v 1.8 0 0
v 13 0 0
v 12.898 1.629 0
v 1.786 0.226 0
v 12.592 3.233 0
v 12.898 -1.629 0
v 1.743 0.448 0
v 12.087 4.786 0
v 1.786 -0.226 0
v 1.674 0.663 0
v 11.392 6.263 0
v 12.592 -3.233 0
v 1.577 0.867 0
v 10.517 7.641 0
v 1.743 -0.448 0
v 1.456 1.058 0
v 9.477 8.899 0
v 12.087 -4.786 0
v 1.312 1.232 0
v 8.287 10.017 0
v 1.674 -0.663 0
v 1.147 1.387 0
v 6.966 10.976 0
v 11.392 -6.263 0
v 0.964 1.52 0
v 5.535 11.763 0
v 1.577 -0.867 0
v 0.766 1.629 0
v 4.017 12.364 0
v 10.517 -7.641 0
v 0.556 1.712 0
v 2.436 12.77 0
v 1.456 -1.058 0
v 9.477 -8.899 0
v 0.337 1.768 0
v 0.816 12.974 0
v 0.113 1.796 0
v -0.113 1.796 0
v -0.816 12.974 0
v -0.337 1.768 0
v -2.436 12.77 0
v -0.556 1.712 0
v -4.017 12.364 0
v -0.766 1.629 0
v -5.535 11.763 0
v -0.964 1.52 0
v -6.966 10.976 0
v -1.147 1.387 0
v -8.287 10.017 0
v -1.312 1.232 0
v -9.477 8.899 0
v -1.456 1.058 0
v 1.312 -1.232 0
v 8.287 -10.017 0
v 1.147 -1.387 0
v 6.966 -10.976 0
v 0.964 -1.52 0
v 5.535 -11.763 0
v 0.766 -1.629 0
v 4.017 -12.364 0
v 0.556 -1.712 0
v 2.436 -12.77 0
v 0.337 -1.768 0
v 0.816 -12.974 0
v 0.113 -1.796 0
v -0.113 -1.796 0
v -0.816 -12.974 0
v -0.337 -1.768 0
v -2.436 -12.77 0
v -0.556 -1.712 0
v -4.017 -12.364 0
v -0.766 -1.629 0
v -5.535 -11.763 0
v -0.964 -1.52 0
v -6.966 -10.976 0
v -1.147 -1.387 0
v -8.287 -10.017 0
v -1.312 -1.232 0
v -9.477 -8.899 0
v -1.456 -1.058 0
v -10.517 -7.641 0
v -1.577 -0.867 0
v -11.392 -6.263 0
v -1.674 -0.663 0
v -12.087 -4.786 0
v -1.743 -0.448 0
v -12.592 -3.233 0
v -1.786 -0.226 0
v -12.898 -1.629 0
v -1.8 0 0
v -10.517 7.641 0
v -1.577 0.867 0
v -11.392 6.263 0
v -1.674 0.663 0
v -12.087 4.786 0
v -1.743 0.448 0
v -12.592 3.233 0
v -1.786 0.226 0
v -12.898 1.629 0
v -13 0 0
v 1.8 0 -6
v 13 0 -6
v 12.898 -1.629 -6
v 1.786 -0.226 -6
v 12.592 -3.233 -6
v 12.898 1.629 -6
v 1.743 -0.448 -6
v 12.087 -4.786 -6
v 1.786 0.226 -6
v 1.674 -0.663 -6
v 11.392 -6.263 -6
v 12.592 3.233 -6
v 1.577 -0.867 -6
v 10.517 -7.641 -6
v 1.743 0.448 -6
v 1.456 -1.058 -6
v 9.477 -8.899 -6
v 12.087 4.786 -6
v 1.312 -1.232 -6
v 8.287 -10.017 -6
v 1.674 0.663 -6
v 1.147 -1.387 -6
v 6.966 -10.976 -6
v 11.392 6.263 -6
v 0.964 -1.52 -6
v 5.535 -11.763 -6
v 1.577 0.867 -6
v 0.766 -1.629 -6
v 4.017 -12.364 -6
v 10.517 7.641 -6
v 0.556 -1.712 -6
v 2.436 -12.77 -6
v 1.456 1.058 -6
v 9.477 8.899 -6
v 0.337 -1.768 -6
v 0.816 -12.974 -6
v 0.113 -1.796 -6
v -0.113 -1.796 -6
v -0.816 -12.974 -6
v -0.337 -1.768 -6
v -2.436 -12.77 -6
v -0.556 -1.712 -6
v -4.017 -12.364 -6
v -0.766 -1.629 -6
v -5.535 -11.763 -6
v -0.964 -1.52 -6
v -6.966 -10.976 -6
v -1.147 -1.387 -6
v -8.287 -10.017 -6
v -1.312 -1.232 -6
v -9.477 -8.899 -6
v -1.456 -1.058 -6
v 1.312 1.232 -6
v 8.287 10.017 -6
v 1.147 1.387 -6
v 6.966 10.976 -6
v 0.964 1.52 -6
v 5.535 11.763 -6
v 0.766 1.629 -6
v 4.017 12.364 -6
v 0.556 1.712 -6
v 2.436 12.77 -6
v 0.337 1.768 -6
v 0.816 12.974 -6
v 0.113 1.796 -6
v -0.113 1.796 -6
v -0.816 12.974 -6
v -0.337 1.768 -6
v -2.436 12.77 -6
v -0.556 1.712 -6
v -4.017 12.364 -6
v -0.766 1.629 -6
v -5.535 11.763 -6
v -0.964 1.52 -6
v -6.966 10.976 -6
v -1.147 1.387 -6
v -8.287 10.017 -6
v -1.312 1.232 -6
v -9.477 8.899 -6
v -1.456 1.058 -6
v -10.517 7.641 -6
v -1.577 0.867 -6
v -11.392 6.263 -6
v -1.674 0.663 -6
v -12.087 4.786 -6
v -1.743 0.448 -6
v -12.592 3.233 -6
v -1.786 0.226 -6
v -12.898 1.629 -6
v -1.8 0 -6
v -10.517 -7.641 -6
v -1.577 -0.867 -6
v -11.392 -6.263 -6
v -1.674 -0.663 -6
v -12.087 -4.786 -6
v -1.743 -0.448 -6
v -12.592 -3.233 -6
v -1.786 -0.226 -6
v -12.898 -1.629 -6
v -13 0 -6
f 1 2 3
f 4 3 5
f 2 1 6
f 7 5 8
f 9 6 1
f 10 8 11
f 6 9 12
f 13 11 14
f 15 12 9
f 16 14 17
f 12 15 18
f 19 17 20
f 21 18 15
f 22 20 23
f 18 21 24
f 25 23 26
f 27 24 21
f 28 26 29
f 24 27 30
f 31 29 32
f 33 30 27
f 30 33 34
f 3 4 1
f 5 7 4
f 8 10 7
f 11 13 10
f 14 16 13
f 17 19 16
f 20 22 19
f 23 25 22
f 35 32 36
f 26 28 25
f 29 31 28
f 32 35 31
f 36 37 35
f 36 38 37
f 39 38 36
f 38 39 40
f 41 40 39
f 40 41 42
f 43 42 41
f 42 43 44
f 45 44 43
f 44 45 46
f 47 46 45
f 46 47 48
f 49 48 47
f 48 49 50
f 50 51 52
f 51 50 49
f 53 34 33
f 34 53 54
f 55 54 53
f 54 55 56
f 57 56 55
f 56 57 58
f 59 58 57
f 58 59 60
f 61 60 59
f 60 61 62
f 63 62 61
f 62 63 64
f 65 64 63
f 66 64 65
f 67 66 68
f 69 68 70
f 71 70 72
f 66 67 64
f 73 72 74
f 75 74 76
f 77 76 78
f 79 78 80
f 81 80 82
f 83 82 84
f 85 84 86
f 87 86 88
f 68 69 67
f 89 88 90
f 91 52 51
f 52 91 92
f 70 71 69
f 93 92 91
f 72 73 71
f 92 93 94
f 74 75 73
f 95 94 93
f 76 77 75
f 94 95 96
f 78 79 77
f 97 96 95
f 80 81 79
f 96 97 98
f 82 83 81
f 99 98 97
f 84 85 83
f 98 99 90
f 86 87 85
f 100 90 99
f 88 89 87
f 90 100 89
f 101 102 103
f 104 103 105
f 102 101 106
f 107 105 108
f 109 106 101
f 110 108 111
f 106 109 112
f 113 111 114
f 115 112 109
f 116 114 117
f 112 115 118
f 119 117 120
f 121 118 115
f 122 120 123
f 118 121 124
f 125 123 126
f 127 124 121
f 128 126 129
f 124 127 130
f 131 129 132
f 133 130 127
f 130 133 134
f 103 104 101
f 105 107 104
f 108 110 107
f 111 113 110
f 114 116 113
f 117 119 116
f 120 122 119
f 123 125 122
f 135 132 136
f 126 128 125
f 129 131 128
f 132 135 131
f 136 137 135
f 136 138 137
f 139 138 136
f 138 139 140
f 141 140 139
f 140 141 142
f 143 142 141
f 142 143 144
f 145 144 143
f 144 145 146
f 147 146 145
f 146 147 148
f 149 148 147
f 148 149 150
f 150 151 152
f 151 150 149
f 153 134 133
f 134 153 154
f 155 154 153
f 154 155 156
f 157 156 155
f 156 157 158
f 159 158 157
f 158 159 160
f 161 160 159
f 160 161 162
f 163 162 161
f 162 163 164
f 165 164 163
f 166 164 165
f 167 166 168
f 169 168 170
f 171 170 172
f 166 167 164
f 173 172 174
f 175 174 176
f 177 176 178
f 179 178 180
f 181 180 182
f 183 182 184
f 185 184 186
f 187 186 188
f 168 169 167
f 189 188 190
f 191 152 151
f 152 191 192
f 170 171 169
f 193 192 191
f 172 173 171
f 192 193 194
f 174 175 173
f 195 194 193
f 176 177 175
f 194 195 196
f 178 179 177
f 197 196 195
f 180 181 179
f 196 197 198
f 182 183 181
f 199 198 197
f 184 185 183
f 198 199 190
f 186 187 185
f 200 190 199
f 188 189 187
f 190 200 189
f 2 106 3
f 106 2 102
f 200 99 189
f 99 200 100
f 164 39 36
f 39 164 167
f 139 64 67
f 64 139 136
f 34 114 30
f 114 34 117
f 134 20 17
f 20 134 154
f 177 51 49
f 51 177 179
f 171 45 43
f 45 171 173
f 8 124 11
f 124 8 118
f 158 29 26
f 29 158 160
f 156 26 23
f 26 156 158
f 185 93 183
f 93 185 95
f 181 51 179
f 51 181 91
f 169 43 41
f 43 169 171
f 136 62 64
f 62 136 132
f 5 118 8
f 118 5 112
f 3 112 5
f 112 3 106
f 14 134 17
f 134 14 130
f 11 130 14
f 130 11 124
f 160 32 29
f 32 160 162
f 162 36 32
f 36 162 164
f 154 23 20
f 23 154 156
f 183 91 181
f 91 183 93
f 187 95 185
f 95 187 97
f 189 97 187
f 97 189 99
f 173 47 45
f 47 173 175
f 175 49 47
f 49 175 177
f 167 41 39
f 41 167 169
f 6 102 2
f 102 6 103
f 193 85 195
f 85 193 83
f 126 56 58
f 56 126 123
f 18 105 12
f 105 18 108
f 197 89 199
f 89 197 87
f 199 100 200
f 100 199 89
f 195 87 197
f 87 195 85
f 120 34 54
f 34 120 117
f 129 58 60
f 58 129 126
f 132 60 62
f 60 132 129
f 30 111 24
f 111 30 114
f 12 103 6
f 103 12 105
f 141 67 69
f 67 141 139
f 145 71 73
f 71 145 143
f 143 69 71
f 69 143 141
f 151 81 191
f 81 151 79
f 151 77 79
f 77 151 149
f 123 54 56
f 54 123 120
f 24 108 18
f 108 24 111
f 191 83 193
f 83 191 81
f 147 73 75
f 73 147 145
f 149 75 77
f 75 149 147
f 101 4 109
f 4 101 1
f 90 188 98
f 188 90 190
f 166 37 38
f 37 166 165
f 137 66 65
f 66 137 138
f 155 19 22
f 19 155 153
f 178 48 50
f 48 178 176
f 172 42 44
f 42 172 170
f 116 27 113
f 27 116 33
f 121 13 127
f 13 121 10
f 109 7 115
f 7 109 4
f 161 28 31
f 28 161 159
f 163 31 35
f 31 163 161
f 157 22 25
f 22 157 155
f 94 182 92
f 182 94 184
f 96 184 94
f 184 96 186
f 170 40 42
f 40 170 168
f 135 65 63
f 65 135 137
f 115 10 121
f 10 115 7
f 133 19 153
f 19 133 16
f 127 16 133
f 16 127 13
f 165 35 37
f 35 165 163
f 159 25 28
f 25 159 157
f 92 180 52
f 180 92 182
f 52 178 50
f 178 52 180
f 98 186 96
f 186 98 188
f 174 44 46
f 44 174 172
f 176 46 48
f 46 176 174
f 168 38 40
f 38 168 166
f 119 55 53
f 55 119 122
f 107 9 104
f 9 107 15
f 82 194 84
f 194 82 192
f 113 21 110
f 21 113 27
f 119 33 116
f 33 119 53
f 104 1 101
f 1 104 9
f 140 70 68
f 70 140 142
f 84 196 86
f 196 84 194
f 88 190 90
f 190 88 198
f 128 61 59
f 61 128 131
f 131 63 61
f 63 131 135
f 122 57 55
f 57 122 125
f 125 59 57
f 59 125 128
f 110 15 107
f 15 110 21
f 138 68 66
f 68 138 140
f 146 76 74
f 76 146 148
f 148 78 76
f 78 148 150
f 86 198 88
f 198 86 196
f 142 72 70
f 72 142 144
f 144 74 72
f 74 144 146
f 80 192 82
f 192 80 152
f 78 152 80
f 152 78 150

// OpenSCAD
$fn = 50;


difference() {
	union() {
		translate(v = [0, 0, -6.0000000000]) {
			cylinder(h = 6, r = 7.0000000000);
		}
		translate(v = [0, 0, -6.0000000000]) {
			cylinder(h = 6, r = 13.0000000000);
		}
	}
	union() {
		#translate(v = [0, 0, -6]) {
			cylinder(h = 6, r = 1.8000000000);
		}
	}
}
